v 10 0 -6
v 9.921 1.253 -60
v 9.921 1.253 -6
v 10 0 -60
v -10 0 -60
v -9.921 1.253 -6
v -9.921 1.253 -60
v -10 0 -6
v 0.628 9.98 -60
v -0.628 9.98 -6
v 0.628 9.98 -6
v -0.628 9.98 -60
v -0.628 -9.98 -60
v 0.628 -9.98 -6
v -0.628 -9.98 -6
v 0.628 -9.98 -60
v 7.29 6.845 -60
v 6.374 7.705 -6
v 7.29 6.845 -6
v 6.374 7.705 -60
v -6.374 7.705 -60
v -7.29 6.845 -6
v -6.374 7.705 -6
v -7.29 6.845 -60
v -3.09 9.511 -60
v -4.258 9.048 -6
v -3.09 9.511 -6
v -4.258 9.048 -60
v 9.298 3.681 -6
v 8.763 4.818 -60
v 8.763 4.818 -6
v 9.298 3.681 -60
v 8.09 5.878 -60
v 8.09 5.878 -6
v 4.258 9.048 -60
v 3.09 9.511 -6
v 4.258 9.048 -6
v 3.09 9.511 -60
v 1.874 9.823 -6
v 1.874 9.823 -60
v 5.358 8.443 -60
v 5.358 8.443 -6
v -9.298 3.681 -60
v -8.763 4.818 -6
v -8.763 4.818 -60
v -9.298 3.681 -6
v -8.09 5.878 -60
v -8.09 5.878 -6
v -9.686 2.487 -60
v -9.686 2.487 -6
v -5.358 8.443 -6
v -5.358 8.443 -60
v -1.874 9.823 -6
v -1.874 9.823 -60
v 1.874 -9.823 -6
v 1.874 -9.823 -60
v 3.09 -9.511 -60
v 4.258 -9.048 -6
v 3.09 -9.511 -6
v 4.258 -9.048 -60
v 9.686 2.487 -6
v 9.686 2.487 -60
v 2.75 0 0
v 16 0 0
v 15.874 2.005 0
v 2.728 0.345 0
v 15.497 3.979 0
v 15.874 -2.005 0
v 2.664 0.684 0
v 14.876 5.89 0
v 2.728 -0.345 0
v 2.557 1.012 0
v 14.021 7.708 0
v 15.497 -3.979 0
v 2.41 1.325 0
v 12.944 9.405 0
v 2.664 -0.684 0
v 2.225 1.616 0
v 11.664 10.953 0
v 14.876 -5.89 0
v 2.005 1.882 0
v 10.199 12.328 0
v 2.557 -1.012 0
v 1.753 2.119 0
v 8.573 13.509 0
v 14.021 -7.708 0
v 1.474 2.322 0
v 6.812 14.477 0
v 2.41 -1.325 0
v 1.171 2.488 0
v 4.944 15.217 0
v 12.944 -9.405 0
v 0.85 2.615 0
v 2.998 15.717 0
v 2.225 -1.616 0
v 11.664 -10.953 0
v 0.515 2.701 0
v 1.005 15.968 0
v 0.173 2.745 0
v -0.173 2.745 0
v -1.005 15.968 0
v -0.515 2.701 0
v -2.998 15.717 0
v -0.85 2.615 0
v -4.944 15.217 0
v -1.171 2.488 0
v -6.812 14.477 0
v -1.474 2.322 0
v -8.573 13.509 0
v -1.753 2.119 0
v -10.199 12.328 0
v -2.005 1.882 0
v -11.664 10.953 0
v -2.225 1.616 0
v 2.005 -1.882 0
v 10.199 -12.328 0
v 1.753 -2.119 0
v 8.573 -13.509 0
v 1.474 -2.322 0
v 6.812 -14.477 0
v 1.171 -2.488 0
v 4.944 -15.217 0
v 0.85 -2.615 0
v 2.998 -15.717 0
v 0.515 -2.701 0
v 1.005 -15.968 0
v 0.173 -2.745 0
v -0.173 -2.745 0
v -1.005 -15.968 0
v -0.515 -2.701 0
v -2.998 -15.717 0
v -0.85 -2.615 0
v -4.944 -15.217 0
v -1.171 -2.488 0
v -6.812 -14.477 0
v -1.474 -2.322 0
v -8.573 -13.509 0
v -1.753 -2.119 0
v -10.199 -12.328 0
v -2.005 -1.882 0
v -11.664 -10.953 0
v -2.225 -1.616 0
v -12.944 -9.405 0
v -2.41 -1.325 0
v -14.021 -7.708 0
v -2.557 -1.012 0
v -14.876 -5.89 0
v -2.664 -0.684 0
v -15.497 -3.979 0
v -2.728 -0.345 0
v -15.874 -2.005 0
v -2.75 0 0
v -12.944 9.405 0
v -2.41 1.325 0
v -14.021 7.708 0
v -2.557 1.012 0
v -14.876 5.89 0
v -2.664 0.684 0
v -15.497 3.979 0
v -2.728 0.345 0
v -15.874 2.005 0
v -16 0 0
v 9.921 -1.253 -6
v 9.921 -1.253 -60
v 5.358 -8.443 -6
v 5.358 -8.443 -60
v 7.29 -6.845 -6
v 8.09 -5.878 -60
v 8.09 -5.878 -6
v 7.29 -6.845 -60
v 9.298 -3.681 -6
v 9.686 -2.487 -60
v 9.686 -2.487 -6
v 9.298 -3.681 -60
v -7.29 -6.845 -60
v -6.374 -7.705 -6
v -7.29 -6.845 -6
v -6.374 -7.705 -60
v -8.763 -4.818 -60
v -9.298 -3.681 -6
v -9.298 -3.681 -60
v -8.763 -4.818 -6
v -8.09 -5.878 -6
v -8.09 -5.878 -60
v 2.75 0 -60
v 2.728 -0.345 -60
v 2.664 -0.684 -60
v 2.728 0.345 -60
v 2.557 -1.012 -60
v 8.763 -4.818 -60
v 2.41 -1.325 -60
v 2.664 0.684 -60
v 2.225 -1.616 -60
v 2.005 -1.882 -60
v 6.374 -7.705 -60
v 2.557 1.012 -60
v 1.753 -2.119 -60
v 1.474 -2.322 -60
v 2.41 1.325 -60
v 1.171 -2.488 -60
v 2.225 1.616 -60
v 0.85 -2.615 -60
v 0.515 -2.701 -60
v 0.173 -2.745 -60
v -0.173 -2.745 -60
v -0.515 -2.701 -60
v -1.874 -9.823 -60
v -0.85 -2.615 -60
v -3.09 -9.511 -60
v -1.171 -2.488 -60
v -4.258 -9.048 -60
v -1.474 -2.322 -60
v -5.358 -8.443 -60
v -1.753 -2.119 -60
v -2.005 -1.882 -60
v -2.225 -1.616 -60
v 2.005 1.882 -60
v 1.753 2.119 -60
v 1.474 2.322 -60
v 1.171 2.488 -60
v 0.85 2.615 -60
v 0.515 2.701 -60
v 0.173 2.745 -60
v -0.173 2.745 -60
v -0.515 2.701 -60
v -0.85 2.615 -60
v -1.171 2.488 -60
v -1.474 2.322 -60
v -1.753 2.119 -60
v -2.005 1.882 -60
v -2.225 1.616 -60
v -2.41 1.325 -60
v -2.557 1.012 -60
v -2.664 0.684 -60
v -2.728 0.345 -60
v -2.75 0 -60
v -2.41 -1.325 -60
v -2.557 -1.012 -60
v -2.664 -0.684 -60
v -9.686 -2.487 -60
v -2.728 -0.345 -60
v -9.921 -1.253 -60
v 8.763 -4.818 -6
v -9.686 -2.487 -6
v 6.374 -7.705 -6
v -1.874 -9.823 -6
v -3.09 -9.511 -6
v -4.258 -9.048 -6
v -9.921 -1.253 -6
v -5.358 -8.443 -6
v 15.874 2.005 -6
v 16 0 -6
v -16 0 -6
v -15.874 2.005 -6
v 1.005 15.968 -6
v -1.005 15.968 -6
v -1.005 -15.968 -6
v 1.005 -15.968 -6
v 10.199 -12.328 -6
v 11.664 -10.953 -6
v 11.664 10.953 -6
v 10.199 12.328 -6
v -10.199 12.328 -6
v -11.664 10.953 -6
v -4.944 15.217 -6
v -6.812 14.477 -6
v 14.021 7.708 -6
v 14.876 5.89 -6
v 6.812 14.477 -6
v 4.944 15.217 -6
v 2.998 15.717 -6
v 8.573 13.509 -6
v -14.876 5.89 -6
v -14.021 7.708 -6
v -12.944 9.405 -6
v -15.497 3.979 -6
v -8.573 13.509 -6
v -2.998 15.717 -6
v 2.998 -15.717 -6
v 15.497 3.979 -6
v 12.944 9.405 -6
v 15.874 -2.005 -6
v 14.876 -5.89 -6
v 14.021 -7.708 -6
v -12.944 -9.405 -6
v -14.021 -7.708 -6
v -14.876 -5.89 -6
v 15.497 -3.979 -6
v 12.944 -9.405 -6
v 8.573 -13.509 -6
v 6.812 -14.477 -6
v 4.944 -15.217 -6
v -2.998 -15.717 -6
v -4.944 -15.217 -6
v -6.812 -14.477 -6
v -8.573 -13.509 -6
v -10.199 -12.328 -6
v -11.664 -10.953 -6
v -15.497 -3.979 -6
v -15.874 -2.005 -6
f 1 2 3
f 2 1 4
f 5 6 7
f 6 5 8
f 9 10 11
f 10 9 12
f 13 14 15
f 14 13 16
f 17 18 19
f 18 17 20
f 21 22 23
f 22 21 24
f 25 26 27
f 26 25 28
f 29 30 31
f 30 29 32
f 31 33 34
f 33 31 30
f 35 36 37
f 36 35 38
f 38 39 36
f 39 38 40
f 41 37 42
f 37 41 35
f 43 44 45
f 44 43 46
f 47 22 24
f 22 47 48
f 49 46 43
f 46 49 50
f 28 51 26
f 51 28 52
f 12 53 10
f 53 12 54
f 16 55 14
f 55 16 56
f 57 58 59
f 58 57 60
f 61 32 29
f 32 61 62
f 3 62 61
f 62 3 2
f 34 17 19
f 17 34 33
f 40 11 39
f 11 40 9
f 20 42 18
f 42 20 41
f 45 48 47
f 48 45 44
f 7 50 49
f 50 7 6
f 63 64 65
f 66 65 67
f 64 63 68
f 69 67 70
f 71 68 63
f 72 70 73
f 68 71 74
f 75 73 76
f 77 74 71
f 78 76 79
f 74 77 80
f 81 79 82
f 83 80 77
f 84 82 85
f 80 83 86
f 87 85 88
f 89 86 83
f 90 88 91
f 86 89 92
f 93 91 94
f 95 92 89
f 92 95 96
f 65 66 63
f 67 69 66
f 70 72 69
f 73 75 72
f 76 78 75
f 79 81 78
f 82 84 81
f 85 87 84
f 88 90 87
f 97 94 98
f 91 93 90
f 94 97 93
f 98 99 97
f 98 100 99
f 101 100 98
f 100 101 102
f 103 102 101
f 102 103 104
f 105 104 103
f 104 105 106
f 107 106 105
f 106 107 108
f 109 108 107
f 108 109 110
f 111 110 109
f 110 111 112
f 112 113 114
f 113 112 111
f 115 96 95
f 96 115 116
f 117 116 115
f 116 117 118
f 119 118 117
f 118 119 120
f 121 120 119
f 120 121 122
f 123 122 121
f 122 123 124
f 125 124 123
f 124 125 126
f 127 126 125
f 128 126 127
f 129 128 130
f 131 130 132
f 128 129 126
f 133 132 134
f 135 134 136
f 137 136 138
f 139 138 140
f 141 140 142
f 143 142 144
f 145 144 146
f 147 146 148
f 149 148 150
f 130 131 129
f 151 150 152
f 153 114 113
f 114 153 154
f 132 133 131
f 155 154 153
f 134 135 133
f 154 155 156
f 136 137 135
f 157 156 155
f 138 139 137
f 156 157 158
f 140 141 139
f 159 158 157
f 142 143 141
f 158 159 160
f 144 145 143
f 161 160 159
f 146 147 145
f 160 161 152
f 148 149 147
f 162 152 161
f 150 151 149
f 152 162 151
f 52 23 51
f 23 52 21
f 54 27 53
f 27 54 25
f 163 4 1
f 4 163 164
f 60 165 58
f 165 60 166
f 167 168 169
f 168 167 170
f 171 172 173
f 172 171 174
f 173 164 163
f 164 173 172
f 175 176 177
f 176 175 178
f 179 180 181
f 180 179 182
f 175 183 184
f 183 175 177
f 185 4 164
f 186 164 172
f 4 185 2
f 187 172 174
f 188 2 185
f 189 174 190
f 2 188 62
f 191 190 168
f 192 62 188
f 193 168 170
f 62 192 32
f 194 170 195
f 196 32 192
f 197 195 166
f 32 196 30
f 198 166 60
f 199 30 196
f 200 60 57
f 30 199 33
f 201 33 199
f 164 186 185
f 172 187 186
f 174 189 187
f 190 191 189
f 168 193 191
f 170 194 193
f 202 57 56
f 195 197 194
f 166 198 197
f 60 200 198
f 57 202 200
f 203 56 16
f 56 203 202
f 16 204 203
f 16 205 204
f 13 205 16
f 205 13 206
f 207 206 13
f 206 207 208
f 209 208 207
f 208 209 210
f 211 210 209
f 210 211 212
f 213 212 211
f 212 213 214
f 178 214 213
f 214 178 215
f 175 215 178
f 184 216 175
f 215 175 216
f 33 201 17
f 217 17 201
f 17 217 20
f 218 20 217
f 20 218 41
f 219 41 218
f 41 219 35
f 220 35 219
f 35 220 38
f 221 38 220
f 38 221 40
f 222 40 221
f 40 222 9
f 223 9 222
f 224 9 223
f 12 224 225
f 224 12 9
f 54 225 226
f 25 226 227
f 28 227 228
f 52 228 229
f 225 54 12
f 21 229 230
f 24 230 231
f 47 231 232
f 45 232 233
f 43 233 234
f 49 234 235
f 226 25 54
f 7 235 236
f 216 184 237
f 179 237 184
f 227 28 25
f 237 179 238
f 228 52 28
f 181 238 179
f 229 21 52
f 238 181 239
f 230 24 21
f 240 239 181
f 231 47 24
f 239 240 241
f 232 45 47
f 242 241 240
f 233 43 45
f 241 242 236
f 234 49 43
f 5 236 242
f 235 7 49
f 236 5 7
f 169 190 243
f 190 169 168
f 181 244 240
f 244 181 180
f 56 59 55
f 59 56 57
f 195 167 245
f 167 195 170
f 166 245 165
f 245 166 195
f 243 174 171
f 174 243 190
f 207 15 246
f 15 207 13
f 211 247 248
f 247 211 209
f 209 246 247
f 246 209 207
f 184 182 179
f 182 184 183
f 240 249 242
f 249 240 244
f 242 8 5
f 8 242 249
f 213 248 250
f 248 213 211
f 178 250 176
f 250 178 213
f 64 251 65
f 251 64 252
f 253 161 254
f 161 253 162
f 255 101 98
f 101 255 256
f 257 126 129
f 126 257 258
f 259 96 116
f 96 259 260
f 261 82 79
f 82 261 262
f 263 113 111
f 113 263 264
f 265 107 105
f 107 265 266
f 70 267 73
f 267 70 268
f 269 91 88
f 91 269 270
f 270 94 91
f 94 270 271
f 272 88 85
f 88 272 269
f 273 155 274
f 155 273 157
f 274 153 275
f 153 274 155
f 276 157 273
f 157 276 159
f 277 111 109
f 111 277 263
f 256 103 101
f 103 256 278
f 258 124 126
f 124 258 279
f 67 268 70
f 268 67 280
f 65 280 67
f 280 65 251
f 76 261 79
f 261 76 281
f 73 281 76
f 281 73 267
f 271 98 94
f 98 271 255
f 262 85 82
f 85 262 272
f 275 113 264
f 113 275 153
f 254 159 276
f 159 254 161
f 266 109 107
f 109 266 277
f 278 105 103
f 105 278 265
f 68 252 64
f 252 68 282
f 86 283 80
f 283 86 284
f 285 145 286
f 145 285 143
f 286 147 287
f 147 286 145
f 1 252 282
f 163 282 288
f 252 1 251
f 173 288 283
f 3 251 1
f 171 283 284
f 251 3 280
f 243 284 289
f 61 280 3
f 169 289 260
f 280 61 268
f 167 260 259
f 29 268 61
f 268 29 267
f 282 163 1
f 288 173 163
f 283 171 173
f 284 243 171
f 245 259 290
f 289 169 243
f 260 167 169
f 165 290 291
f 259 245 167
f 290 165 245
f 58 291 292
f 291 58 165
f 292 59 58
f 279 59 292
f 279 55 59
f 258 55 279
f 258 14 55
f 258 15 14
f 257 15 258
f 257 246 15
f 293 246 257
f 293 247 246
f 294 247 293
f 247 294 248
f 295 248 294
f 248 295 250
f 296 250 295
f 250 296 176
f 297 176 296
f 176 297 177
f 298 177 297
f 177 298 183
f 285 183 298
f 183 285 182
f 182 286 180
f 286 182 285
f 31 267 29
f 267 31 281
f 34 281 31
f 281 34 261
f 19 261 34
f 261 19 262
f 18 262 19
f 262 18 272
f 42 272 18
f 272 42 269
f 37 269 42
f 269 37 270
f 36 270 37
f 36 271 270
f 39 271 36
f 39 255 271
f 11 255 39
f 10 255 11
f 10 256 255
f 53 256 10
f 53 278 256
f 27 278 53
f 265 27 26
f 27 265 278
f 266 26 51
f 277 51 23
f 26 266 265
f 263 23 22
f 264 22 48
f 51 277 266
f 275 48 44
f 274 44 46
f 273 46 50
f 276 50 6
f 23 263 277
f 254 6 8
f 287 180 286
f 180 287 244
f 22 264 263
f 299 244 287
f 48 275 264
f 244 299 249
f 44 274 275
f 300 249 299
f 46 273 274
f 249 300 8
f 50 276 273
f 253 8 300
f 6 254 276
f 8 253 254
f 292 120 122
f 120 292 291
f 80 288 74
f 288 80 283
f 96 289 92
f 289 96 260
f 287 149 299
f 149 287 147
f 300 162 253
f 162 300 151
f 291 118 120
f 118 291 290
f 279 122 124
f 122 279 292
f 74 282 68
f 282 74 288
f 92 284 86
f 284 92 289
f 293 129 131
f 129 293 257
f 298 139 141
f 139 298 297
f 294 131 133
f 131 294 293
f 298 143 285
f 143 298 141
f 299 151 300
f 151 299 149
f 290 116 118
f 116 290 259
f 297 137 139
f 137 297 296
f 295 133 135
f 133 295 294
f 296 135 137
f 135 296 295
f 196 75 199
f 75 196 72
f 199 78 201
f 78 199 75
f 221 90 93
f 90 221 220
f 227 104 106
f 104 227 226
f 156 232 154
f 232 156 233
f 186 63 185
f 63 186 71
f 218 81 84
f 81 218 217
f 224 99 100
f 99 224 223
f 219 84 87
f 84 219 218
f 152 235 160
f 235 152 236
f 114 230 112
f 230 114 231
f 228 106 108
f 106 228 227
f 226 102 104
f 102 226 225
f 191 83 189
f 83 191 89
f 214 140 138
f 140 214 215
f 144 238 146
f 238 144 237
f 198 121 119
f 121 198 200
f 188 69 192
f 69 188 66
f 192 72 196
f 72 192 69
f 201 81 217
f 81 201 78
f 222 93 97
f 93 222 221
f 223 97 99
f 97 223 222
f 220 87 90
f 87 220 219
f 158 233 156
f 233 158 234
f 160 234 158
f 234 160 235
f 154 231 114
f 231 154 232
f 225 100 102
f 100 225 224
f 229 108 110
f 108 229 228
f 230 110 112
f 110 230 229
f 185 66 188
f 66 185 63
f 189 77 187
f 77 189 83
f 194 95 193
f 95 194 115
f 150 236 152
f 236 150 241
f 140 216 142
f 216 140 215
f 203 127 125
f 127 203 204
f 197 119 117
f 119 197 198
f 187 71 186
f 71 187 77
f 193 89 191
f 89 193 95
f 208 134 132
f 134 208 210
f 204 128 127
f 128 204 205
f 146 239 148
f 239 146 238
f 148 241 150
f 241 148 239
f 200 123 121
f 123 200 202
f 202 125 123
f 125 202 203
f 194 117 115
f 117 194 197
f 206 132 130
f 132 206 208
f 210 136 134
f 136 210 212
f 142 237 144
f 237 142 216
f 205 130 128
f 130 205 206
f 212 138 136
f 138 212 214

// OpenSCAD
$fn = 50;


difference() {
	union() {
		translate(v = [0, 0, -60.0000000000]) {
			cylinder(h = 60, r = 10.0000000000);
		}
		translate(v = [0, 0, -6.0000000000]) {
			cylinder(h = 6, r = 16.0000000000);
		}
	}
	union() {
		#translate(v = [0, 0, -60]) {
			cylinder(h = 60, r = 2.7500000000);
		}
	}
}
